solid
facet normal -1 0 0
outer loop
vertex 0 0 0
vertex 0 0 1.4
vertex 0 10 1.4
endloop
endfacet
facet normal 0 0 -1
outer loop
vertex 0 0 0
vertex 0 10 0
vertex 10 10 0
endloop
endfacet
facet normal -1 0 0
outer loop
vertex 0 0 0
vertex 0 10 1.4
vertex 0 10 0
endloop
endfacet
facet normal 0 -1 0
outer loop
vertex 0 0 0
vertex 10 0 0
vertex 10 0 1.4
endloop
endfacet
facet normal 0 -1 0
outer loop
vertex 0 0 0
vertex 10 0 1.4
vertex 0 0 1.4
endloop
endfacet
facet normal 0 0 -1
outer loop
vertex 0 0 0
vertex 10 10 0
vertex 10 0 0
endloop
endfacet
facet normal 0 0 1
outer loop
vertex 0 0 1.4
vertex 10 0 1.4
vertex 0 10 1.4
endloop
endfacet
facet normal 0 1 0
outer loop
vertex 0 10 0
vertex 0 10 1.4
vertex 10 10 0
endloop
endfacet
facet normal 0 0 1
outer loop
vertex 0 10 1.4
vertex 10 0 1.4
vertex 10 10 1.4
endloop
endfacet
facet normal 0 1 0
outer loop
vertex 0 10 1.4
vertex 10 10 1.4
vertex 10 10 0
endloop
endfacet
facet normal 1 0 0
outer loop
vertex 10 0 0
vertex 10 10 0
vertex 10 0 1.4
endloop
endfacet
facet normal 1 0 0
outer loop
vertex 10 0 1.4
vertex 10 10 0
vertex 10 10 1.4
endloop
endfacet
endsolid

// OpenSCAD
/* Warning, this is a very basic generator with a lot of approximation 
input data : [LQFP, CFA, 10x10x1.4mm, 64, , A, C04-01080A]
generated by com.zoubworld.electronics.cad.model3d.Basic
Date : Sun Feb 15 10:50:49 CET 2026
*/

//body
color("black")
translate([0,0,0])
cube([10.0,10.0,1.4], center=false);
